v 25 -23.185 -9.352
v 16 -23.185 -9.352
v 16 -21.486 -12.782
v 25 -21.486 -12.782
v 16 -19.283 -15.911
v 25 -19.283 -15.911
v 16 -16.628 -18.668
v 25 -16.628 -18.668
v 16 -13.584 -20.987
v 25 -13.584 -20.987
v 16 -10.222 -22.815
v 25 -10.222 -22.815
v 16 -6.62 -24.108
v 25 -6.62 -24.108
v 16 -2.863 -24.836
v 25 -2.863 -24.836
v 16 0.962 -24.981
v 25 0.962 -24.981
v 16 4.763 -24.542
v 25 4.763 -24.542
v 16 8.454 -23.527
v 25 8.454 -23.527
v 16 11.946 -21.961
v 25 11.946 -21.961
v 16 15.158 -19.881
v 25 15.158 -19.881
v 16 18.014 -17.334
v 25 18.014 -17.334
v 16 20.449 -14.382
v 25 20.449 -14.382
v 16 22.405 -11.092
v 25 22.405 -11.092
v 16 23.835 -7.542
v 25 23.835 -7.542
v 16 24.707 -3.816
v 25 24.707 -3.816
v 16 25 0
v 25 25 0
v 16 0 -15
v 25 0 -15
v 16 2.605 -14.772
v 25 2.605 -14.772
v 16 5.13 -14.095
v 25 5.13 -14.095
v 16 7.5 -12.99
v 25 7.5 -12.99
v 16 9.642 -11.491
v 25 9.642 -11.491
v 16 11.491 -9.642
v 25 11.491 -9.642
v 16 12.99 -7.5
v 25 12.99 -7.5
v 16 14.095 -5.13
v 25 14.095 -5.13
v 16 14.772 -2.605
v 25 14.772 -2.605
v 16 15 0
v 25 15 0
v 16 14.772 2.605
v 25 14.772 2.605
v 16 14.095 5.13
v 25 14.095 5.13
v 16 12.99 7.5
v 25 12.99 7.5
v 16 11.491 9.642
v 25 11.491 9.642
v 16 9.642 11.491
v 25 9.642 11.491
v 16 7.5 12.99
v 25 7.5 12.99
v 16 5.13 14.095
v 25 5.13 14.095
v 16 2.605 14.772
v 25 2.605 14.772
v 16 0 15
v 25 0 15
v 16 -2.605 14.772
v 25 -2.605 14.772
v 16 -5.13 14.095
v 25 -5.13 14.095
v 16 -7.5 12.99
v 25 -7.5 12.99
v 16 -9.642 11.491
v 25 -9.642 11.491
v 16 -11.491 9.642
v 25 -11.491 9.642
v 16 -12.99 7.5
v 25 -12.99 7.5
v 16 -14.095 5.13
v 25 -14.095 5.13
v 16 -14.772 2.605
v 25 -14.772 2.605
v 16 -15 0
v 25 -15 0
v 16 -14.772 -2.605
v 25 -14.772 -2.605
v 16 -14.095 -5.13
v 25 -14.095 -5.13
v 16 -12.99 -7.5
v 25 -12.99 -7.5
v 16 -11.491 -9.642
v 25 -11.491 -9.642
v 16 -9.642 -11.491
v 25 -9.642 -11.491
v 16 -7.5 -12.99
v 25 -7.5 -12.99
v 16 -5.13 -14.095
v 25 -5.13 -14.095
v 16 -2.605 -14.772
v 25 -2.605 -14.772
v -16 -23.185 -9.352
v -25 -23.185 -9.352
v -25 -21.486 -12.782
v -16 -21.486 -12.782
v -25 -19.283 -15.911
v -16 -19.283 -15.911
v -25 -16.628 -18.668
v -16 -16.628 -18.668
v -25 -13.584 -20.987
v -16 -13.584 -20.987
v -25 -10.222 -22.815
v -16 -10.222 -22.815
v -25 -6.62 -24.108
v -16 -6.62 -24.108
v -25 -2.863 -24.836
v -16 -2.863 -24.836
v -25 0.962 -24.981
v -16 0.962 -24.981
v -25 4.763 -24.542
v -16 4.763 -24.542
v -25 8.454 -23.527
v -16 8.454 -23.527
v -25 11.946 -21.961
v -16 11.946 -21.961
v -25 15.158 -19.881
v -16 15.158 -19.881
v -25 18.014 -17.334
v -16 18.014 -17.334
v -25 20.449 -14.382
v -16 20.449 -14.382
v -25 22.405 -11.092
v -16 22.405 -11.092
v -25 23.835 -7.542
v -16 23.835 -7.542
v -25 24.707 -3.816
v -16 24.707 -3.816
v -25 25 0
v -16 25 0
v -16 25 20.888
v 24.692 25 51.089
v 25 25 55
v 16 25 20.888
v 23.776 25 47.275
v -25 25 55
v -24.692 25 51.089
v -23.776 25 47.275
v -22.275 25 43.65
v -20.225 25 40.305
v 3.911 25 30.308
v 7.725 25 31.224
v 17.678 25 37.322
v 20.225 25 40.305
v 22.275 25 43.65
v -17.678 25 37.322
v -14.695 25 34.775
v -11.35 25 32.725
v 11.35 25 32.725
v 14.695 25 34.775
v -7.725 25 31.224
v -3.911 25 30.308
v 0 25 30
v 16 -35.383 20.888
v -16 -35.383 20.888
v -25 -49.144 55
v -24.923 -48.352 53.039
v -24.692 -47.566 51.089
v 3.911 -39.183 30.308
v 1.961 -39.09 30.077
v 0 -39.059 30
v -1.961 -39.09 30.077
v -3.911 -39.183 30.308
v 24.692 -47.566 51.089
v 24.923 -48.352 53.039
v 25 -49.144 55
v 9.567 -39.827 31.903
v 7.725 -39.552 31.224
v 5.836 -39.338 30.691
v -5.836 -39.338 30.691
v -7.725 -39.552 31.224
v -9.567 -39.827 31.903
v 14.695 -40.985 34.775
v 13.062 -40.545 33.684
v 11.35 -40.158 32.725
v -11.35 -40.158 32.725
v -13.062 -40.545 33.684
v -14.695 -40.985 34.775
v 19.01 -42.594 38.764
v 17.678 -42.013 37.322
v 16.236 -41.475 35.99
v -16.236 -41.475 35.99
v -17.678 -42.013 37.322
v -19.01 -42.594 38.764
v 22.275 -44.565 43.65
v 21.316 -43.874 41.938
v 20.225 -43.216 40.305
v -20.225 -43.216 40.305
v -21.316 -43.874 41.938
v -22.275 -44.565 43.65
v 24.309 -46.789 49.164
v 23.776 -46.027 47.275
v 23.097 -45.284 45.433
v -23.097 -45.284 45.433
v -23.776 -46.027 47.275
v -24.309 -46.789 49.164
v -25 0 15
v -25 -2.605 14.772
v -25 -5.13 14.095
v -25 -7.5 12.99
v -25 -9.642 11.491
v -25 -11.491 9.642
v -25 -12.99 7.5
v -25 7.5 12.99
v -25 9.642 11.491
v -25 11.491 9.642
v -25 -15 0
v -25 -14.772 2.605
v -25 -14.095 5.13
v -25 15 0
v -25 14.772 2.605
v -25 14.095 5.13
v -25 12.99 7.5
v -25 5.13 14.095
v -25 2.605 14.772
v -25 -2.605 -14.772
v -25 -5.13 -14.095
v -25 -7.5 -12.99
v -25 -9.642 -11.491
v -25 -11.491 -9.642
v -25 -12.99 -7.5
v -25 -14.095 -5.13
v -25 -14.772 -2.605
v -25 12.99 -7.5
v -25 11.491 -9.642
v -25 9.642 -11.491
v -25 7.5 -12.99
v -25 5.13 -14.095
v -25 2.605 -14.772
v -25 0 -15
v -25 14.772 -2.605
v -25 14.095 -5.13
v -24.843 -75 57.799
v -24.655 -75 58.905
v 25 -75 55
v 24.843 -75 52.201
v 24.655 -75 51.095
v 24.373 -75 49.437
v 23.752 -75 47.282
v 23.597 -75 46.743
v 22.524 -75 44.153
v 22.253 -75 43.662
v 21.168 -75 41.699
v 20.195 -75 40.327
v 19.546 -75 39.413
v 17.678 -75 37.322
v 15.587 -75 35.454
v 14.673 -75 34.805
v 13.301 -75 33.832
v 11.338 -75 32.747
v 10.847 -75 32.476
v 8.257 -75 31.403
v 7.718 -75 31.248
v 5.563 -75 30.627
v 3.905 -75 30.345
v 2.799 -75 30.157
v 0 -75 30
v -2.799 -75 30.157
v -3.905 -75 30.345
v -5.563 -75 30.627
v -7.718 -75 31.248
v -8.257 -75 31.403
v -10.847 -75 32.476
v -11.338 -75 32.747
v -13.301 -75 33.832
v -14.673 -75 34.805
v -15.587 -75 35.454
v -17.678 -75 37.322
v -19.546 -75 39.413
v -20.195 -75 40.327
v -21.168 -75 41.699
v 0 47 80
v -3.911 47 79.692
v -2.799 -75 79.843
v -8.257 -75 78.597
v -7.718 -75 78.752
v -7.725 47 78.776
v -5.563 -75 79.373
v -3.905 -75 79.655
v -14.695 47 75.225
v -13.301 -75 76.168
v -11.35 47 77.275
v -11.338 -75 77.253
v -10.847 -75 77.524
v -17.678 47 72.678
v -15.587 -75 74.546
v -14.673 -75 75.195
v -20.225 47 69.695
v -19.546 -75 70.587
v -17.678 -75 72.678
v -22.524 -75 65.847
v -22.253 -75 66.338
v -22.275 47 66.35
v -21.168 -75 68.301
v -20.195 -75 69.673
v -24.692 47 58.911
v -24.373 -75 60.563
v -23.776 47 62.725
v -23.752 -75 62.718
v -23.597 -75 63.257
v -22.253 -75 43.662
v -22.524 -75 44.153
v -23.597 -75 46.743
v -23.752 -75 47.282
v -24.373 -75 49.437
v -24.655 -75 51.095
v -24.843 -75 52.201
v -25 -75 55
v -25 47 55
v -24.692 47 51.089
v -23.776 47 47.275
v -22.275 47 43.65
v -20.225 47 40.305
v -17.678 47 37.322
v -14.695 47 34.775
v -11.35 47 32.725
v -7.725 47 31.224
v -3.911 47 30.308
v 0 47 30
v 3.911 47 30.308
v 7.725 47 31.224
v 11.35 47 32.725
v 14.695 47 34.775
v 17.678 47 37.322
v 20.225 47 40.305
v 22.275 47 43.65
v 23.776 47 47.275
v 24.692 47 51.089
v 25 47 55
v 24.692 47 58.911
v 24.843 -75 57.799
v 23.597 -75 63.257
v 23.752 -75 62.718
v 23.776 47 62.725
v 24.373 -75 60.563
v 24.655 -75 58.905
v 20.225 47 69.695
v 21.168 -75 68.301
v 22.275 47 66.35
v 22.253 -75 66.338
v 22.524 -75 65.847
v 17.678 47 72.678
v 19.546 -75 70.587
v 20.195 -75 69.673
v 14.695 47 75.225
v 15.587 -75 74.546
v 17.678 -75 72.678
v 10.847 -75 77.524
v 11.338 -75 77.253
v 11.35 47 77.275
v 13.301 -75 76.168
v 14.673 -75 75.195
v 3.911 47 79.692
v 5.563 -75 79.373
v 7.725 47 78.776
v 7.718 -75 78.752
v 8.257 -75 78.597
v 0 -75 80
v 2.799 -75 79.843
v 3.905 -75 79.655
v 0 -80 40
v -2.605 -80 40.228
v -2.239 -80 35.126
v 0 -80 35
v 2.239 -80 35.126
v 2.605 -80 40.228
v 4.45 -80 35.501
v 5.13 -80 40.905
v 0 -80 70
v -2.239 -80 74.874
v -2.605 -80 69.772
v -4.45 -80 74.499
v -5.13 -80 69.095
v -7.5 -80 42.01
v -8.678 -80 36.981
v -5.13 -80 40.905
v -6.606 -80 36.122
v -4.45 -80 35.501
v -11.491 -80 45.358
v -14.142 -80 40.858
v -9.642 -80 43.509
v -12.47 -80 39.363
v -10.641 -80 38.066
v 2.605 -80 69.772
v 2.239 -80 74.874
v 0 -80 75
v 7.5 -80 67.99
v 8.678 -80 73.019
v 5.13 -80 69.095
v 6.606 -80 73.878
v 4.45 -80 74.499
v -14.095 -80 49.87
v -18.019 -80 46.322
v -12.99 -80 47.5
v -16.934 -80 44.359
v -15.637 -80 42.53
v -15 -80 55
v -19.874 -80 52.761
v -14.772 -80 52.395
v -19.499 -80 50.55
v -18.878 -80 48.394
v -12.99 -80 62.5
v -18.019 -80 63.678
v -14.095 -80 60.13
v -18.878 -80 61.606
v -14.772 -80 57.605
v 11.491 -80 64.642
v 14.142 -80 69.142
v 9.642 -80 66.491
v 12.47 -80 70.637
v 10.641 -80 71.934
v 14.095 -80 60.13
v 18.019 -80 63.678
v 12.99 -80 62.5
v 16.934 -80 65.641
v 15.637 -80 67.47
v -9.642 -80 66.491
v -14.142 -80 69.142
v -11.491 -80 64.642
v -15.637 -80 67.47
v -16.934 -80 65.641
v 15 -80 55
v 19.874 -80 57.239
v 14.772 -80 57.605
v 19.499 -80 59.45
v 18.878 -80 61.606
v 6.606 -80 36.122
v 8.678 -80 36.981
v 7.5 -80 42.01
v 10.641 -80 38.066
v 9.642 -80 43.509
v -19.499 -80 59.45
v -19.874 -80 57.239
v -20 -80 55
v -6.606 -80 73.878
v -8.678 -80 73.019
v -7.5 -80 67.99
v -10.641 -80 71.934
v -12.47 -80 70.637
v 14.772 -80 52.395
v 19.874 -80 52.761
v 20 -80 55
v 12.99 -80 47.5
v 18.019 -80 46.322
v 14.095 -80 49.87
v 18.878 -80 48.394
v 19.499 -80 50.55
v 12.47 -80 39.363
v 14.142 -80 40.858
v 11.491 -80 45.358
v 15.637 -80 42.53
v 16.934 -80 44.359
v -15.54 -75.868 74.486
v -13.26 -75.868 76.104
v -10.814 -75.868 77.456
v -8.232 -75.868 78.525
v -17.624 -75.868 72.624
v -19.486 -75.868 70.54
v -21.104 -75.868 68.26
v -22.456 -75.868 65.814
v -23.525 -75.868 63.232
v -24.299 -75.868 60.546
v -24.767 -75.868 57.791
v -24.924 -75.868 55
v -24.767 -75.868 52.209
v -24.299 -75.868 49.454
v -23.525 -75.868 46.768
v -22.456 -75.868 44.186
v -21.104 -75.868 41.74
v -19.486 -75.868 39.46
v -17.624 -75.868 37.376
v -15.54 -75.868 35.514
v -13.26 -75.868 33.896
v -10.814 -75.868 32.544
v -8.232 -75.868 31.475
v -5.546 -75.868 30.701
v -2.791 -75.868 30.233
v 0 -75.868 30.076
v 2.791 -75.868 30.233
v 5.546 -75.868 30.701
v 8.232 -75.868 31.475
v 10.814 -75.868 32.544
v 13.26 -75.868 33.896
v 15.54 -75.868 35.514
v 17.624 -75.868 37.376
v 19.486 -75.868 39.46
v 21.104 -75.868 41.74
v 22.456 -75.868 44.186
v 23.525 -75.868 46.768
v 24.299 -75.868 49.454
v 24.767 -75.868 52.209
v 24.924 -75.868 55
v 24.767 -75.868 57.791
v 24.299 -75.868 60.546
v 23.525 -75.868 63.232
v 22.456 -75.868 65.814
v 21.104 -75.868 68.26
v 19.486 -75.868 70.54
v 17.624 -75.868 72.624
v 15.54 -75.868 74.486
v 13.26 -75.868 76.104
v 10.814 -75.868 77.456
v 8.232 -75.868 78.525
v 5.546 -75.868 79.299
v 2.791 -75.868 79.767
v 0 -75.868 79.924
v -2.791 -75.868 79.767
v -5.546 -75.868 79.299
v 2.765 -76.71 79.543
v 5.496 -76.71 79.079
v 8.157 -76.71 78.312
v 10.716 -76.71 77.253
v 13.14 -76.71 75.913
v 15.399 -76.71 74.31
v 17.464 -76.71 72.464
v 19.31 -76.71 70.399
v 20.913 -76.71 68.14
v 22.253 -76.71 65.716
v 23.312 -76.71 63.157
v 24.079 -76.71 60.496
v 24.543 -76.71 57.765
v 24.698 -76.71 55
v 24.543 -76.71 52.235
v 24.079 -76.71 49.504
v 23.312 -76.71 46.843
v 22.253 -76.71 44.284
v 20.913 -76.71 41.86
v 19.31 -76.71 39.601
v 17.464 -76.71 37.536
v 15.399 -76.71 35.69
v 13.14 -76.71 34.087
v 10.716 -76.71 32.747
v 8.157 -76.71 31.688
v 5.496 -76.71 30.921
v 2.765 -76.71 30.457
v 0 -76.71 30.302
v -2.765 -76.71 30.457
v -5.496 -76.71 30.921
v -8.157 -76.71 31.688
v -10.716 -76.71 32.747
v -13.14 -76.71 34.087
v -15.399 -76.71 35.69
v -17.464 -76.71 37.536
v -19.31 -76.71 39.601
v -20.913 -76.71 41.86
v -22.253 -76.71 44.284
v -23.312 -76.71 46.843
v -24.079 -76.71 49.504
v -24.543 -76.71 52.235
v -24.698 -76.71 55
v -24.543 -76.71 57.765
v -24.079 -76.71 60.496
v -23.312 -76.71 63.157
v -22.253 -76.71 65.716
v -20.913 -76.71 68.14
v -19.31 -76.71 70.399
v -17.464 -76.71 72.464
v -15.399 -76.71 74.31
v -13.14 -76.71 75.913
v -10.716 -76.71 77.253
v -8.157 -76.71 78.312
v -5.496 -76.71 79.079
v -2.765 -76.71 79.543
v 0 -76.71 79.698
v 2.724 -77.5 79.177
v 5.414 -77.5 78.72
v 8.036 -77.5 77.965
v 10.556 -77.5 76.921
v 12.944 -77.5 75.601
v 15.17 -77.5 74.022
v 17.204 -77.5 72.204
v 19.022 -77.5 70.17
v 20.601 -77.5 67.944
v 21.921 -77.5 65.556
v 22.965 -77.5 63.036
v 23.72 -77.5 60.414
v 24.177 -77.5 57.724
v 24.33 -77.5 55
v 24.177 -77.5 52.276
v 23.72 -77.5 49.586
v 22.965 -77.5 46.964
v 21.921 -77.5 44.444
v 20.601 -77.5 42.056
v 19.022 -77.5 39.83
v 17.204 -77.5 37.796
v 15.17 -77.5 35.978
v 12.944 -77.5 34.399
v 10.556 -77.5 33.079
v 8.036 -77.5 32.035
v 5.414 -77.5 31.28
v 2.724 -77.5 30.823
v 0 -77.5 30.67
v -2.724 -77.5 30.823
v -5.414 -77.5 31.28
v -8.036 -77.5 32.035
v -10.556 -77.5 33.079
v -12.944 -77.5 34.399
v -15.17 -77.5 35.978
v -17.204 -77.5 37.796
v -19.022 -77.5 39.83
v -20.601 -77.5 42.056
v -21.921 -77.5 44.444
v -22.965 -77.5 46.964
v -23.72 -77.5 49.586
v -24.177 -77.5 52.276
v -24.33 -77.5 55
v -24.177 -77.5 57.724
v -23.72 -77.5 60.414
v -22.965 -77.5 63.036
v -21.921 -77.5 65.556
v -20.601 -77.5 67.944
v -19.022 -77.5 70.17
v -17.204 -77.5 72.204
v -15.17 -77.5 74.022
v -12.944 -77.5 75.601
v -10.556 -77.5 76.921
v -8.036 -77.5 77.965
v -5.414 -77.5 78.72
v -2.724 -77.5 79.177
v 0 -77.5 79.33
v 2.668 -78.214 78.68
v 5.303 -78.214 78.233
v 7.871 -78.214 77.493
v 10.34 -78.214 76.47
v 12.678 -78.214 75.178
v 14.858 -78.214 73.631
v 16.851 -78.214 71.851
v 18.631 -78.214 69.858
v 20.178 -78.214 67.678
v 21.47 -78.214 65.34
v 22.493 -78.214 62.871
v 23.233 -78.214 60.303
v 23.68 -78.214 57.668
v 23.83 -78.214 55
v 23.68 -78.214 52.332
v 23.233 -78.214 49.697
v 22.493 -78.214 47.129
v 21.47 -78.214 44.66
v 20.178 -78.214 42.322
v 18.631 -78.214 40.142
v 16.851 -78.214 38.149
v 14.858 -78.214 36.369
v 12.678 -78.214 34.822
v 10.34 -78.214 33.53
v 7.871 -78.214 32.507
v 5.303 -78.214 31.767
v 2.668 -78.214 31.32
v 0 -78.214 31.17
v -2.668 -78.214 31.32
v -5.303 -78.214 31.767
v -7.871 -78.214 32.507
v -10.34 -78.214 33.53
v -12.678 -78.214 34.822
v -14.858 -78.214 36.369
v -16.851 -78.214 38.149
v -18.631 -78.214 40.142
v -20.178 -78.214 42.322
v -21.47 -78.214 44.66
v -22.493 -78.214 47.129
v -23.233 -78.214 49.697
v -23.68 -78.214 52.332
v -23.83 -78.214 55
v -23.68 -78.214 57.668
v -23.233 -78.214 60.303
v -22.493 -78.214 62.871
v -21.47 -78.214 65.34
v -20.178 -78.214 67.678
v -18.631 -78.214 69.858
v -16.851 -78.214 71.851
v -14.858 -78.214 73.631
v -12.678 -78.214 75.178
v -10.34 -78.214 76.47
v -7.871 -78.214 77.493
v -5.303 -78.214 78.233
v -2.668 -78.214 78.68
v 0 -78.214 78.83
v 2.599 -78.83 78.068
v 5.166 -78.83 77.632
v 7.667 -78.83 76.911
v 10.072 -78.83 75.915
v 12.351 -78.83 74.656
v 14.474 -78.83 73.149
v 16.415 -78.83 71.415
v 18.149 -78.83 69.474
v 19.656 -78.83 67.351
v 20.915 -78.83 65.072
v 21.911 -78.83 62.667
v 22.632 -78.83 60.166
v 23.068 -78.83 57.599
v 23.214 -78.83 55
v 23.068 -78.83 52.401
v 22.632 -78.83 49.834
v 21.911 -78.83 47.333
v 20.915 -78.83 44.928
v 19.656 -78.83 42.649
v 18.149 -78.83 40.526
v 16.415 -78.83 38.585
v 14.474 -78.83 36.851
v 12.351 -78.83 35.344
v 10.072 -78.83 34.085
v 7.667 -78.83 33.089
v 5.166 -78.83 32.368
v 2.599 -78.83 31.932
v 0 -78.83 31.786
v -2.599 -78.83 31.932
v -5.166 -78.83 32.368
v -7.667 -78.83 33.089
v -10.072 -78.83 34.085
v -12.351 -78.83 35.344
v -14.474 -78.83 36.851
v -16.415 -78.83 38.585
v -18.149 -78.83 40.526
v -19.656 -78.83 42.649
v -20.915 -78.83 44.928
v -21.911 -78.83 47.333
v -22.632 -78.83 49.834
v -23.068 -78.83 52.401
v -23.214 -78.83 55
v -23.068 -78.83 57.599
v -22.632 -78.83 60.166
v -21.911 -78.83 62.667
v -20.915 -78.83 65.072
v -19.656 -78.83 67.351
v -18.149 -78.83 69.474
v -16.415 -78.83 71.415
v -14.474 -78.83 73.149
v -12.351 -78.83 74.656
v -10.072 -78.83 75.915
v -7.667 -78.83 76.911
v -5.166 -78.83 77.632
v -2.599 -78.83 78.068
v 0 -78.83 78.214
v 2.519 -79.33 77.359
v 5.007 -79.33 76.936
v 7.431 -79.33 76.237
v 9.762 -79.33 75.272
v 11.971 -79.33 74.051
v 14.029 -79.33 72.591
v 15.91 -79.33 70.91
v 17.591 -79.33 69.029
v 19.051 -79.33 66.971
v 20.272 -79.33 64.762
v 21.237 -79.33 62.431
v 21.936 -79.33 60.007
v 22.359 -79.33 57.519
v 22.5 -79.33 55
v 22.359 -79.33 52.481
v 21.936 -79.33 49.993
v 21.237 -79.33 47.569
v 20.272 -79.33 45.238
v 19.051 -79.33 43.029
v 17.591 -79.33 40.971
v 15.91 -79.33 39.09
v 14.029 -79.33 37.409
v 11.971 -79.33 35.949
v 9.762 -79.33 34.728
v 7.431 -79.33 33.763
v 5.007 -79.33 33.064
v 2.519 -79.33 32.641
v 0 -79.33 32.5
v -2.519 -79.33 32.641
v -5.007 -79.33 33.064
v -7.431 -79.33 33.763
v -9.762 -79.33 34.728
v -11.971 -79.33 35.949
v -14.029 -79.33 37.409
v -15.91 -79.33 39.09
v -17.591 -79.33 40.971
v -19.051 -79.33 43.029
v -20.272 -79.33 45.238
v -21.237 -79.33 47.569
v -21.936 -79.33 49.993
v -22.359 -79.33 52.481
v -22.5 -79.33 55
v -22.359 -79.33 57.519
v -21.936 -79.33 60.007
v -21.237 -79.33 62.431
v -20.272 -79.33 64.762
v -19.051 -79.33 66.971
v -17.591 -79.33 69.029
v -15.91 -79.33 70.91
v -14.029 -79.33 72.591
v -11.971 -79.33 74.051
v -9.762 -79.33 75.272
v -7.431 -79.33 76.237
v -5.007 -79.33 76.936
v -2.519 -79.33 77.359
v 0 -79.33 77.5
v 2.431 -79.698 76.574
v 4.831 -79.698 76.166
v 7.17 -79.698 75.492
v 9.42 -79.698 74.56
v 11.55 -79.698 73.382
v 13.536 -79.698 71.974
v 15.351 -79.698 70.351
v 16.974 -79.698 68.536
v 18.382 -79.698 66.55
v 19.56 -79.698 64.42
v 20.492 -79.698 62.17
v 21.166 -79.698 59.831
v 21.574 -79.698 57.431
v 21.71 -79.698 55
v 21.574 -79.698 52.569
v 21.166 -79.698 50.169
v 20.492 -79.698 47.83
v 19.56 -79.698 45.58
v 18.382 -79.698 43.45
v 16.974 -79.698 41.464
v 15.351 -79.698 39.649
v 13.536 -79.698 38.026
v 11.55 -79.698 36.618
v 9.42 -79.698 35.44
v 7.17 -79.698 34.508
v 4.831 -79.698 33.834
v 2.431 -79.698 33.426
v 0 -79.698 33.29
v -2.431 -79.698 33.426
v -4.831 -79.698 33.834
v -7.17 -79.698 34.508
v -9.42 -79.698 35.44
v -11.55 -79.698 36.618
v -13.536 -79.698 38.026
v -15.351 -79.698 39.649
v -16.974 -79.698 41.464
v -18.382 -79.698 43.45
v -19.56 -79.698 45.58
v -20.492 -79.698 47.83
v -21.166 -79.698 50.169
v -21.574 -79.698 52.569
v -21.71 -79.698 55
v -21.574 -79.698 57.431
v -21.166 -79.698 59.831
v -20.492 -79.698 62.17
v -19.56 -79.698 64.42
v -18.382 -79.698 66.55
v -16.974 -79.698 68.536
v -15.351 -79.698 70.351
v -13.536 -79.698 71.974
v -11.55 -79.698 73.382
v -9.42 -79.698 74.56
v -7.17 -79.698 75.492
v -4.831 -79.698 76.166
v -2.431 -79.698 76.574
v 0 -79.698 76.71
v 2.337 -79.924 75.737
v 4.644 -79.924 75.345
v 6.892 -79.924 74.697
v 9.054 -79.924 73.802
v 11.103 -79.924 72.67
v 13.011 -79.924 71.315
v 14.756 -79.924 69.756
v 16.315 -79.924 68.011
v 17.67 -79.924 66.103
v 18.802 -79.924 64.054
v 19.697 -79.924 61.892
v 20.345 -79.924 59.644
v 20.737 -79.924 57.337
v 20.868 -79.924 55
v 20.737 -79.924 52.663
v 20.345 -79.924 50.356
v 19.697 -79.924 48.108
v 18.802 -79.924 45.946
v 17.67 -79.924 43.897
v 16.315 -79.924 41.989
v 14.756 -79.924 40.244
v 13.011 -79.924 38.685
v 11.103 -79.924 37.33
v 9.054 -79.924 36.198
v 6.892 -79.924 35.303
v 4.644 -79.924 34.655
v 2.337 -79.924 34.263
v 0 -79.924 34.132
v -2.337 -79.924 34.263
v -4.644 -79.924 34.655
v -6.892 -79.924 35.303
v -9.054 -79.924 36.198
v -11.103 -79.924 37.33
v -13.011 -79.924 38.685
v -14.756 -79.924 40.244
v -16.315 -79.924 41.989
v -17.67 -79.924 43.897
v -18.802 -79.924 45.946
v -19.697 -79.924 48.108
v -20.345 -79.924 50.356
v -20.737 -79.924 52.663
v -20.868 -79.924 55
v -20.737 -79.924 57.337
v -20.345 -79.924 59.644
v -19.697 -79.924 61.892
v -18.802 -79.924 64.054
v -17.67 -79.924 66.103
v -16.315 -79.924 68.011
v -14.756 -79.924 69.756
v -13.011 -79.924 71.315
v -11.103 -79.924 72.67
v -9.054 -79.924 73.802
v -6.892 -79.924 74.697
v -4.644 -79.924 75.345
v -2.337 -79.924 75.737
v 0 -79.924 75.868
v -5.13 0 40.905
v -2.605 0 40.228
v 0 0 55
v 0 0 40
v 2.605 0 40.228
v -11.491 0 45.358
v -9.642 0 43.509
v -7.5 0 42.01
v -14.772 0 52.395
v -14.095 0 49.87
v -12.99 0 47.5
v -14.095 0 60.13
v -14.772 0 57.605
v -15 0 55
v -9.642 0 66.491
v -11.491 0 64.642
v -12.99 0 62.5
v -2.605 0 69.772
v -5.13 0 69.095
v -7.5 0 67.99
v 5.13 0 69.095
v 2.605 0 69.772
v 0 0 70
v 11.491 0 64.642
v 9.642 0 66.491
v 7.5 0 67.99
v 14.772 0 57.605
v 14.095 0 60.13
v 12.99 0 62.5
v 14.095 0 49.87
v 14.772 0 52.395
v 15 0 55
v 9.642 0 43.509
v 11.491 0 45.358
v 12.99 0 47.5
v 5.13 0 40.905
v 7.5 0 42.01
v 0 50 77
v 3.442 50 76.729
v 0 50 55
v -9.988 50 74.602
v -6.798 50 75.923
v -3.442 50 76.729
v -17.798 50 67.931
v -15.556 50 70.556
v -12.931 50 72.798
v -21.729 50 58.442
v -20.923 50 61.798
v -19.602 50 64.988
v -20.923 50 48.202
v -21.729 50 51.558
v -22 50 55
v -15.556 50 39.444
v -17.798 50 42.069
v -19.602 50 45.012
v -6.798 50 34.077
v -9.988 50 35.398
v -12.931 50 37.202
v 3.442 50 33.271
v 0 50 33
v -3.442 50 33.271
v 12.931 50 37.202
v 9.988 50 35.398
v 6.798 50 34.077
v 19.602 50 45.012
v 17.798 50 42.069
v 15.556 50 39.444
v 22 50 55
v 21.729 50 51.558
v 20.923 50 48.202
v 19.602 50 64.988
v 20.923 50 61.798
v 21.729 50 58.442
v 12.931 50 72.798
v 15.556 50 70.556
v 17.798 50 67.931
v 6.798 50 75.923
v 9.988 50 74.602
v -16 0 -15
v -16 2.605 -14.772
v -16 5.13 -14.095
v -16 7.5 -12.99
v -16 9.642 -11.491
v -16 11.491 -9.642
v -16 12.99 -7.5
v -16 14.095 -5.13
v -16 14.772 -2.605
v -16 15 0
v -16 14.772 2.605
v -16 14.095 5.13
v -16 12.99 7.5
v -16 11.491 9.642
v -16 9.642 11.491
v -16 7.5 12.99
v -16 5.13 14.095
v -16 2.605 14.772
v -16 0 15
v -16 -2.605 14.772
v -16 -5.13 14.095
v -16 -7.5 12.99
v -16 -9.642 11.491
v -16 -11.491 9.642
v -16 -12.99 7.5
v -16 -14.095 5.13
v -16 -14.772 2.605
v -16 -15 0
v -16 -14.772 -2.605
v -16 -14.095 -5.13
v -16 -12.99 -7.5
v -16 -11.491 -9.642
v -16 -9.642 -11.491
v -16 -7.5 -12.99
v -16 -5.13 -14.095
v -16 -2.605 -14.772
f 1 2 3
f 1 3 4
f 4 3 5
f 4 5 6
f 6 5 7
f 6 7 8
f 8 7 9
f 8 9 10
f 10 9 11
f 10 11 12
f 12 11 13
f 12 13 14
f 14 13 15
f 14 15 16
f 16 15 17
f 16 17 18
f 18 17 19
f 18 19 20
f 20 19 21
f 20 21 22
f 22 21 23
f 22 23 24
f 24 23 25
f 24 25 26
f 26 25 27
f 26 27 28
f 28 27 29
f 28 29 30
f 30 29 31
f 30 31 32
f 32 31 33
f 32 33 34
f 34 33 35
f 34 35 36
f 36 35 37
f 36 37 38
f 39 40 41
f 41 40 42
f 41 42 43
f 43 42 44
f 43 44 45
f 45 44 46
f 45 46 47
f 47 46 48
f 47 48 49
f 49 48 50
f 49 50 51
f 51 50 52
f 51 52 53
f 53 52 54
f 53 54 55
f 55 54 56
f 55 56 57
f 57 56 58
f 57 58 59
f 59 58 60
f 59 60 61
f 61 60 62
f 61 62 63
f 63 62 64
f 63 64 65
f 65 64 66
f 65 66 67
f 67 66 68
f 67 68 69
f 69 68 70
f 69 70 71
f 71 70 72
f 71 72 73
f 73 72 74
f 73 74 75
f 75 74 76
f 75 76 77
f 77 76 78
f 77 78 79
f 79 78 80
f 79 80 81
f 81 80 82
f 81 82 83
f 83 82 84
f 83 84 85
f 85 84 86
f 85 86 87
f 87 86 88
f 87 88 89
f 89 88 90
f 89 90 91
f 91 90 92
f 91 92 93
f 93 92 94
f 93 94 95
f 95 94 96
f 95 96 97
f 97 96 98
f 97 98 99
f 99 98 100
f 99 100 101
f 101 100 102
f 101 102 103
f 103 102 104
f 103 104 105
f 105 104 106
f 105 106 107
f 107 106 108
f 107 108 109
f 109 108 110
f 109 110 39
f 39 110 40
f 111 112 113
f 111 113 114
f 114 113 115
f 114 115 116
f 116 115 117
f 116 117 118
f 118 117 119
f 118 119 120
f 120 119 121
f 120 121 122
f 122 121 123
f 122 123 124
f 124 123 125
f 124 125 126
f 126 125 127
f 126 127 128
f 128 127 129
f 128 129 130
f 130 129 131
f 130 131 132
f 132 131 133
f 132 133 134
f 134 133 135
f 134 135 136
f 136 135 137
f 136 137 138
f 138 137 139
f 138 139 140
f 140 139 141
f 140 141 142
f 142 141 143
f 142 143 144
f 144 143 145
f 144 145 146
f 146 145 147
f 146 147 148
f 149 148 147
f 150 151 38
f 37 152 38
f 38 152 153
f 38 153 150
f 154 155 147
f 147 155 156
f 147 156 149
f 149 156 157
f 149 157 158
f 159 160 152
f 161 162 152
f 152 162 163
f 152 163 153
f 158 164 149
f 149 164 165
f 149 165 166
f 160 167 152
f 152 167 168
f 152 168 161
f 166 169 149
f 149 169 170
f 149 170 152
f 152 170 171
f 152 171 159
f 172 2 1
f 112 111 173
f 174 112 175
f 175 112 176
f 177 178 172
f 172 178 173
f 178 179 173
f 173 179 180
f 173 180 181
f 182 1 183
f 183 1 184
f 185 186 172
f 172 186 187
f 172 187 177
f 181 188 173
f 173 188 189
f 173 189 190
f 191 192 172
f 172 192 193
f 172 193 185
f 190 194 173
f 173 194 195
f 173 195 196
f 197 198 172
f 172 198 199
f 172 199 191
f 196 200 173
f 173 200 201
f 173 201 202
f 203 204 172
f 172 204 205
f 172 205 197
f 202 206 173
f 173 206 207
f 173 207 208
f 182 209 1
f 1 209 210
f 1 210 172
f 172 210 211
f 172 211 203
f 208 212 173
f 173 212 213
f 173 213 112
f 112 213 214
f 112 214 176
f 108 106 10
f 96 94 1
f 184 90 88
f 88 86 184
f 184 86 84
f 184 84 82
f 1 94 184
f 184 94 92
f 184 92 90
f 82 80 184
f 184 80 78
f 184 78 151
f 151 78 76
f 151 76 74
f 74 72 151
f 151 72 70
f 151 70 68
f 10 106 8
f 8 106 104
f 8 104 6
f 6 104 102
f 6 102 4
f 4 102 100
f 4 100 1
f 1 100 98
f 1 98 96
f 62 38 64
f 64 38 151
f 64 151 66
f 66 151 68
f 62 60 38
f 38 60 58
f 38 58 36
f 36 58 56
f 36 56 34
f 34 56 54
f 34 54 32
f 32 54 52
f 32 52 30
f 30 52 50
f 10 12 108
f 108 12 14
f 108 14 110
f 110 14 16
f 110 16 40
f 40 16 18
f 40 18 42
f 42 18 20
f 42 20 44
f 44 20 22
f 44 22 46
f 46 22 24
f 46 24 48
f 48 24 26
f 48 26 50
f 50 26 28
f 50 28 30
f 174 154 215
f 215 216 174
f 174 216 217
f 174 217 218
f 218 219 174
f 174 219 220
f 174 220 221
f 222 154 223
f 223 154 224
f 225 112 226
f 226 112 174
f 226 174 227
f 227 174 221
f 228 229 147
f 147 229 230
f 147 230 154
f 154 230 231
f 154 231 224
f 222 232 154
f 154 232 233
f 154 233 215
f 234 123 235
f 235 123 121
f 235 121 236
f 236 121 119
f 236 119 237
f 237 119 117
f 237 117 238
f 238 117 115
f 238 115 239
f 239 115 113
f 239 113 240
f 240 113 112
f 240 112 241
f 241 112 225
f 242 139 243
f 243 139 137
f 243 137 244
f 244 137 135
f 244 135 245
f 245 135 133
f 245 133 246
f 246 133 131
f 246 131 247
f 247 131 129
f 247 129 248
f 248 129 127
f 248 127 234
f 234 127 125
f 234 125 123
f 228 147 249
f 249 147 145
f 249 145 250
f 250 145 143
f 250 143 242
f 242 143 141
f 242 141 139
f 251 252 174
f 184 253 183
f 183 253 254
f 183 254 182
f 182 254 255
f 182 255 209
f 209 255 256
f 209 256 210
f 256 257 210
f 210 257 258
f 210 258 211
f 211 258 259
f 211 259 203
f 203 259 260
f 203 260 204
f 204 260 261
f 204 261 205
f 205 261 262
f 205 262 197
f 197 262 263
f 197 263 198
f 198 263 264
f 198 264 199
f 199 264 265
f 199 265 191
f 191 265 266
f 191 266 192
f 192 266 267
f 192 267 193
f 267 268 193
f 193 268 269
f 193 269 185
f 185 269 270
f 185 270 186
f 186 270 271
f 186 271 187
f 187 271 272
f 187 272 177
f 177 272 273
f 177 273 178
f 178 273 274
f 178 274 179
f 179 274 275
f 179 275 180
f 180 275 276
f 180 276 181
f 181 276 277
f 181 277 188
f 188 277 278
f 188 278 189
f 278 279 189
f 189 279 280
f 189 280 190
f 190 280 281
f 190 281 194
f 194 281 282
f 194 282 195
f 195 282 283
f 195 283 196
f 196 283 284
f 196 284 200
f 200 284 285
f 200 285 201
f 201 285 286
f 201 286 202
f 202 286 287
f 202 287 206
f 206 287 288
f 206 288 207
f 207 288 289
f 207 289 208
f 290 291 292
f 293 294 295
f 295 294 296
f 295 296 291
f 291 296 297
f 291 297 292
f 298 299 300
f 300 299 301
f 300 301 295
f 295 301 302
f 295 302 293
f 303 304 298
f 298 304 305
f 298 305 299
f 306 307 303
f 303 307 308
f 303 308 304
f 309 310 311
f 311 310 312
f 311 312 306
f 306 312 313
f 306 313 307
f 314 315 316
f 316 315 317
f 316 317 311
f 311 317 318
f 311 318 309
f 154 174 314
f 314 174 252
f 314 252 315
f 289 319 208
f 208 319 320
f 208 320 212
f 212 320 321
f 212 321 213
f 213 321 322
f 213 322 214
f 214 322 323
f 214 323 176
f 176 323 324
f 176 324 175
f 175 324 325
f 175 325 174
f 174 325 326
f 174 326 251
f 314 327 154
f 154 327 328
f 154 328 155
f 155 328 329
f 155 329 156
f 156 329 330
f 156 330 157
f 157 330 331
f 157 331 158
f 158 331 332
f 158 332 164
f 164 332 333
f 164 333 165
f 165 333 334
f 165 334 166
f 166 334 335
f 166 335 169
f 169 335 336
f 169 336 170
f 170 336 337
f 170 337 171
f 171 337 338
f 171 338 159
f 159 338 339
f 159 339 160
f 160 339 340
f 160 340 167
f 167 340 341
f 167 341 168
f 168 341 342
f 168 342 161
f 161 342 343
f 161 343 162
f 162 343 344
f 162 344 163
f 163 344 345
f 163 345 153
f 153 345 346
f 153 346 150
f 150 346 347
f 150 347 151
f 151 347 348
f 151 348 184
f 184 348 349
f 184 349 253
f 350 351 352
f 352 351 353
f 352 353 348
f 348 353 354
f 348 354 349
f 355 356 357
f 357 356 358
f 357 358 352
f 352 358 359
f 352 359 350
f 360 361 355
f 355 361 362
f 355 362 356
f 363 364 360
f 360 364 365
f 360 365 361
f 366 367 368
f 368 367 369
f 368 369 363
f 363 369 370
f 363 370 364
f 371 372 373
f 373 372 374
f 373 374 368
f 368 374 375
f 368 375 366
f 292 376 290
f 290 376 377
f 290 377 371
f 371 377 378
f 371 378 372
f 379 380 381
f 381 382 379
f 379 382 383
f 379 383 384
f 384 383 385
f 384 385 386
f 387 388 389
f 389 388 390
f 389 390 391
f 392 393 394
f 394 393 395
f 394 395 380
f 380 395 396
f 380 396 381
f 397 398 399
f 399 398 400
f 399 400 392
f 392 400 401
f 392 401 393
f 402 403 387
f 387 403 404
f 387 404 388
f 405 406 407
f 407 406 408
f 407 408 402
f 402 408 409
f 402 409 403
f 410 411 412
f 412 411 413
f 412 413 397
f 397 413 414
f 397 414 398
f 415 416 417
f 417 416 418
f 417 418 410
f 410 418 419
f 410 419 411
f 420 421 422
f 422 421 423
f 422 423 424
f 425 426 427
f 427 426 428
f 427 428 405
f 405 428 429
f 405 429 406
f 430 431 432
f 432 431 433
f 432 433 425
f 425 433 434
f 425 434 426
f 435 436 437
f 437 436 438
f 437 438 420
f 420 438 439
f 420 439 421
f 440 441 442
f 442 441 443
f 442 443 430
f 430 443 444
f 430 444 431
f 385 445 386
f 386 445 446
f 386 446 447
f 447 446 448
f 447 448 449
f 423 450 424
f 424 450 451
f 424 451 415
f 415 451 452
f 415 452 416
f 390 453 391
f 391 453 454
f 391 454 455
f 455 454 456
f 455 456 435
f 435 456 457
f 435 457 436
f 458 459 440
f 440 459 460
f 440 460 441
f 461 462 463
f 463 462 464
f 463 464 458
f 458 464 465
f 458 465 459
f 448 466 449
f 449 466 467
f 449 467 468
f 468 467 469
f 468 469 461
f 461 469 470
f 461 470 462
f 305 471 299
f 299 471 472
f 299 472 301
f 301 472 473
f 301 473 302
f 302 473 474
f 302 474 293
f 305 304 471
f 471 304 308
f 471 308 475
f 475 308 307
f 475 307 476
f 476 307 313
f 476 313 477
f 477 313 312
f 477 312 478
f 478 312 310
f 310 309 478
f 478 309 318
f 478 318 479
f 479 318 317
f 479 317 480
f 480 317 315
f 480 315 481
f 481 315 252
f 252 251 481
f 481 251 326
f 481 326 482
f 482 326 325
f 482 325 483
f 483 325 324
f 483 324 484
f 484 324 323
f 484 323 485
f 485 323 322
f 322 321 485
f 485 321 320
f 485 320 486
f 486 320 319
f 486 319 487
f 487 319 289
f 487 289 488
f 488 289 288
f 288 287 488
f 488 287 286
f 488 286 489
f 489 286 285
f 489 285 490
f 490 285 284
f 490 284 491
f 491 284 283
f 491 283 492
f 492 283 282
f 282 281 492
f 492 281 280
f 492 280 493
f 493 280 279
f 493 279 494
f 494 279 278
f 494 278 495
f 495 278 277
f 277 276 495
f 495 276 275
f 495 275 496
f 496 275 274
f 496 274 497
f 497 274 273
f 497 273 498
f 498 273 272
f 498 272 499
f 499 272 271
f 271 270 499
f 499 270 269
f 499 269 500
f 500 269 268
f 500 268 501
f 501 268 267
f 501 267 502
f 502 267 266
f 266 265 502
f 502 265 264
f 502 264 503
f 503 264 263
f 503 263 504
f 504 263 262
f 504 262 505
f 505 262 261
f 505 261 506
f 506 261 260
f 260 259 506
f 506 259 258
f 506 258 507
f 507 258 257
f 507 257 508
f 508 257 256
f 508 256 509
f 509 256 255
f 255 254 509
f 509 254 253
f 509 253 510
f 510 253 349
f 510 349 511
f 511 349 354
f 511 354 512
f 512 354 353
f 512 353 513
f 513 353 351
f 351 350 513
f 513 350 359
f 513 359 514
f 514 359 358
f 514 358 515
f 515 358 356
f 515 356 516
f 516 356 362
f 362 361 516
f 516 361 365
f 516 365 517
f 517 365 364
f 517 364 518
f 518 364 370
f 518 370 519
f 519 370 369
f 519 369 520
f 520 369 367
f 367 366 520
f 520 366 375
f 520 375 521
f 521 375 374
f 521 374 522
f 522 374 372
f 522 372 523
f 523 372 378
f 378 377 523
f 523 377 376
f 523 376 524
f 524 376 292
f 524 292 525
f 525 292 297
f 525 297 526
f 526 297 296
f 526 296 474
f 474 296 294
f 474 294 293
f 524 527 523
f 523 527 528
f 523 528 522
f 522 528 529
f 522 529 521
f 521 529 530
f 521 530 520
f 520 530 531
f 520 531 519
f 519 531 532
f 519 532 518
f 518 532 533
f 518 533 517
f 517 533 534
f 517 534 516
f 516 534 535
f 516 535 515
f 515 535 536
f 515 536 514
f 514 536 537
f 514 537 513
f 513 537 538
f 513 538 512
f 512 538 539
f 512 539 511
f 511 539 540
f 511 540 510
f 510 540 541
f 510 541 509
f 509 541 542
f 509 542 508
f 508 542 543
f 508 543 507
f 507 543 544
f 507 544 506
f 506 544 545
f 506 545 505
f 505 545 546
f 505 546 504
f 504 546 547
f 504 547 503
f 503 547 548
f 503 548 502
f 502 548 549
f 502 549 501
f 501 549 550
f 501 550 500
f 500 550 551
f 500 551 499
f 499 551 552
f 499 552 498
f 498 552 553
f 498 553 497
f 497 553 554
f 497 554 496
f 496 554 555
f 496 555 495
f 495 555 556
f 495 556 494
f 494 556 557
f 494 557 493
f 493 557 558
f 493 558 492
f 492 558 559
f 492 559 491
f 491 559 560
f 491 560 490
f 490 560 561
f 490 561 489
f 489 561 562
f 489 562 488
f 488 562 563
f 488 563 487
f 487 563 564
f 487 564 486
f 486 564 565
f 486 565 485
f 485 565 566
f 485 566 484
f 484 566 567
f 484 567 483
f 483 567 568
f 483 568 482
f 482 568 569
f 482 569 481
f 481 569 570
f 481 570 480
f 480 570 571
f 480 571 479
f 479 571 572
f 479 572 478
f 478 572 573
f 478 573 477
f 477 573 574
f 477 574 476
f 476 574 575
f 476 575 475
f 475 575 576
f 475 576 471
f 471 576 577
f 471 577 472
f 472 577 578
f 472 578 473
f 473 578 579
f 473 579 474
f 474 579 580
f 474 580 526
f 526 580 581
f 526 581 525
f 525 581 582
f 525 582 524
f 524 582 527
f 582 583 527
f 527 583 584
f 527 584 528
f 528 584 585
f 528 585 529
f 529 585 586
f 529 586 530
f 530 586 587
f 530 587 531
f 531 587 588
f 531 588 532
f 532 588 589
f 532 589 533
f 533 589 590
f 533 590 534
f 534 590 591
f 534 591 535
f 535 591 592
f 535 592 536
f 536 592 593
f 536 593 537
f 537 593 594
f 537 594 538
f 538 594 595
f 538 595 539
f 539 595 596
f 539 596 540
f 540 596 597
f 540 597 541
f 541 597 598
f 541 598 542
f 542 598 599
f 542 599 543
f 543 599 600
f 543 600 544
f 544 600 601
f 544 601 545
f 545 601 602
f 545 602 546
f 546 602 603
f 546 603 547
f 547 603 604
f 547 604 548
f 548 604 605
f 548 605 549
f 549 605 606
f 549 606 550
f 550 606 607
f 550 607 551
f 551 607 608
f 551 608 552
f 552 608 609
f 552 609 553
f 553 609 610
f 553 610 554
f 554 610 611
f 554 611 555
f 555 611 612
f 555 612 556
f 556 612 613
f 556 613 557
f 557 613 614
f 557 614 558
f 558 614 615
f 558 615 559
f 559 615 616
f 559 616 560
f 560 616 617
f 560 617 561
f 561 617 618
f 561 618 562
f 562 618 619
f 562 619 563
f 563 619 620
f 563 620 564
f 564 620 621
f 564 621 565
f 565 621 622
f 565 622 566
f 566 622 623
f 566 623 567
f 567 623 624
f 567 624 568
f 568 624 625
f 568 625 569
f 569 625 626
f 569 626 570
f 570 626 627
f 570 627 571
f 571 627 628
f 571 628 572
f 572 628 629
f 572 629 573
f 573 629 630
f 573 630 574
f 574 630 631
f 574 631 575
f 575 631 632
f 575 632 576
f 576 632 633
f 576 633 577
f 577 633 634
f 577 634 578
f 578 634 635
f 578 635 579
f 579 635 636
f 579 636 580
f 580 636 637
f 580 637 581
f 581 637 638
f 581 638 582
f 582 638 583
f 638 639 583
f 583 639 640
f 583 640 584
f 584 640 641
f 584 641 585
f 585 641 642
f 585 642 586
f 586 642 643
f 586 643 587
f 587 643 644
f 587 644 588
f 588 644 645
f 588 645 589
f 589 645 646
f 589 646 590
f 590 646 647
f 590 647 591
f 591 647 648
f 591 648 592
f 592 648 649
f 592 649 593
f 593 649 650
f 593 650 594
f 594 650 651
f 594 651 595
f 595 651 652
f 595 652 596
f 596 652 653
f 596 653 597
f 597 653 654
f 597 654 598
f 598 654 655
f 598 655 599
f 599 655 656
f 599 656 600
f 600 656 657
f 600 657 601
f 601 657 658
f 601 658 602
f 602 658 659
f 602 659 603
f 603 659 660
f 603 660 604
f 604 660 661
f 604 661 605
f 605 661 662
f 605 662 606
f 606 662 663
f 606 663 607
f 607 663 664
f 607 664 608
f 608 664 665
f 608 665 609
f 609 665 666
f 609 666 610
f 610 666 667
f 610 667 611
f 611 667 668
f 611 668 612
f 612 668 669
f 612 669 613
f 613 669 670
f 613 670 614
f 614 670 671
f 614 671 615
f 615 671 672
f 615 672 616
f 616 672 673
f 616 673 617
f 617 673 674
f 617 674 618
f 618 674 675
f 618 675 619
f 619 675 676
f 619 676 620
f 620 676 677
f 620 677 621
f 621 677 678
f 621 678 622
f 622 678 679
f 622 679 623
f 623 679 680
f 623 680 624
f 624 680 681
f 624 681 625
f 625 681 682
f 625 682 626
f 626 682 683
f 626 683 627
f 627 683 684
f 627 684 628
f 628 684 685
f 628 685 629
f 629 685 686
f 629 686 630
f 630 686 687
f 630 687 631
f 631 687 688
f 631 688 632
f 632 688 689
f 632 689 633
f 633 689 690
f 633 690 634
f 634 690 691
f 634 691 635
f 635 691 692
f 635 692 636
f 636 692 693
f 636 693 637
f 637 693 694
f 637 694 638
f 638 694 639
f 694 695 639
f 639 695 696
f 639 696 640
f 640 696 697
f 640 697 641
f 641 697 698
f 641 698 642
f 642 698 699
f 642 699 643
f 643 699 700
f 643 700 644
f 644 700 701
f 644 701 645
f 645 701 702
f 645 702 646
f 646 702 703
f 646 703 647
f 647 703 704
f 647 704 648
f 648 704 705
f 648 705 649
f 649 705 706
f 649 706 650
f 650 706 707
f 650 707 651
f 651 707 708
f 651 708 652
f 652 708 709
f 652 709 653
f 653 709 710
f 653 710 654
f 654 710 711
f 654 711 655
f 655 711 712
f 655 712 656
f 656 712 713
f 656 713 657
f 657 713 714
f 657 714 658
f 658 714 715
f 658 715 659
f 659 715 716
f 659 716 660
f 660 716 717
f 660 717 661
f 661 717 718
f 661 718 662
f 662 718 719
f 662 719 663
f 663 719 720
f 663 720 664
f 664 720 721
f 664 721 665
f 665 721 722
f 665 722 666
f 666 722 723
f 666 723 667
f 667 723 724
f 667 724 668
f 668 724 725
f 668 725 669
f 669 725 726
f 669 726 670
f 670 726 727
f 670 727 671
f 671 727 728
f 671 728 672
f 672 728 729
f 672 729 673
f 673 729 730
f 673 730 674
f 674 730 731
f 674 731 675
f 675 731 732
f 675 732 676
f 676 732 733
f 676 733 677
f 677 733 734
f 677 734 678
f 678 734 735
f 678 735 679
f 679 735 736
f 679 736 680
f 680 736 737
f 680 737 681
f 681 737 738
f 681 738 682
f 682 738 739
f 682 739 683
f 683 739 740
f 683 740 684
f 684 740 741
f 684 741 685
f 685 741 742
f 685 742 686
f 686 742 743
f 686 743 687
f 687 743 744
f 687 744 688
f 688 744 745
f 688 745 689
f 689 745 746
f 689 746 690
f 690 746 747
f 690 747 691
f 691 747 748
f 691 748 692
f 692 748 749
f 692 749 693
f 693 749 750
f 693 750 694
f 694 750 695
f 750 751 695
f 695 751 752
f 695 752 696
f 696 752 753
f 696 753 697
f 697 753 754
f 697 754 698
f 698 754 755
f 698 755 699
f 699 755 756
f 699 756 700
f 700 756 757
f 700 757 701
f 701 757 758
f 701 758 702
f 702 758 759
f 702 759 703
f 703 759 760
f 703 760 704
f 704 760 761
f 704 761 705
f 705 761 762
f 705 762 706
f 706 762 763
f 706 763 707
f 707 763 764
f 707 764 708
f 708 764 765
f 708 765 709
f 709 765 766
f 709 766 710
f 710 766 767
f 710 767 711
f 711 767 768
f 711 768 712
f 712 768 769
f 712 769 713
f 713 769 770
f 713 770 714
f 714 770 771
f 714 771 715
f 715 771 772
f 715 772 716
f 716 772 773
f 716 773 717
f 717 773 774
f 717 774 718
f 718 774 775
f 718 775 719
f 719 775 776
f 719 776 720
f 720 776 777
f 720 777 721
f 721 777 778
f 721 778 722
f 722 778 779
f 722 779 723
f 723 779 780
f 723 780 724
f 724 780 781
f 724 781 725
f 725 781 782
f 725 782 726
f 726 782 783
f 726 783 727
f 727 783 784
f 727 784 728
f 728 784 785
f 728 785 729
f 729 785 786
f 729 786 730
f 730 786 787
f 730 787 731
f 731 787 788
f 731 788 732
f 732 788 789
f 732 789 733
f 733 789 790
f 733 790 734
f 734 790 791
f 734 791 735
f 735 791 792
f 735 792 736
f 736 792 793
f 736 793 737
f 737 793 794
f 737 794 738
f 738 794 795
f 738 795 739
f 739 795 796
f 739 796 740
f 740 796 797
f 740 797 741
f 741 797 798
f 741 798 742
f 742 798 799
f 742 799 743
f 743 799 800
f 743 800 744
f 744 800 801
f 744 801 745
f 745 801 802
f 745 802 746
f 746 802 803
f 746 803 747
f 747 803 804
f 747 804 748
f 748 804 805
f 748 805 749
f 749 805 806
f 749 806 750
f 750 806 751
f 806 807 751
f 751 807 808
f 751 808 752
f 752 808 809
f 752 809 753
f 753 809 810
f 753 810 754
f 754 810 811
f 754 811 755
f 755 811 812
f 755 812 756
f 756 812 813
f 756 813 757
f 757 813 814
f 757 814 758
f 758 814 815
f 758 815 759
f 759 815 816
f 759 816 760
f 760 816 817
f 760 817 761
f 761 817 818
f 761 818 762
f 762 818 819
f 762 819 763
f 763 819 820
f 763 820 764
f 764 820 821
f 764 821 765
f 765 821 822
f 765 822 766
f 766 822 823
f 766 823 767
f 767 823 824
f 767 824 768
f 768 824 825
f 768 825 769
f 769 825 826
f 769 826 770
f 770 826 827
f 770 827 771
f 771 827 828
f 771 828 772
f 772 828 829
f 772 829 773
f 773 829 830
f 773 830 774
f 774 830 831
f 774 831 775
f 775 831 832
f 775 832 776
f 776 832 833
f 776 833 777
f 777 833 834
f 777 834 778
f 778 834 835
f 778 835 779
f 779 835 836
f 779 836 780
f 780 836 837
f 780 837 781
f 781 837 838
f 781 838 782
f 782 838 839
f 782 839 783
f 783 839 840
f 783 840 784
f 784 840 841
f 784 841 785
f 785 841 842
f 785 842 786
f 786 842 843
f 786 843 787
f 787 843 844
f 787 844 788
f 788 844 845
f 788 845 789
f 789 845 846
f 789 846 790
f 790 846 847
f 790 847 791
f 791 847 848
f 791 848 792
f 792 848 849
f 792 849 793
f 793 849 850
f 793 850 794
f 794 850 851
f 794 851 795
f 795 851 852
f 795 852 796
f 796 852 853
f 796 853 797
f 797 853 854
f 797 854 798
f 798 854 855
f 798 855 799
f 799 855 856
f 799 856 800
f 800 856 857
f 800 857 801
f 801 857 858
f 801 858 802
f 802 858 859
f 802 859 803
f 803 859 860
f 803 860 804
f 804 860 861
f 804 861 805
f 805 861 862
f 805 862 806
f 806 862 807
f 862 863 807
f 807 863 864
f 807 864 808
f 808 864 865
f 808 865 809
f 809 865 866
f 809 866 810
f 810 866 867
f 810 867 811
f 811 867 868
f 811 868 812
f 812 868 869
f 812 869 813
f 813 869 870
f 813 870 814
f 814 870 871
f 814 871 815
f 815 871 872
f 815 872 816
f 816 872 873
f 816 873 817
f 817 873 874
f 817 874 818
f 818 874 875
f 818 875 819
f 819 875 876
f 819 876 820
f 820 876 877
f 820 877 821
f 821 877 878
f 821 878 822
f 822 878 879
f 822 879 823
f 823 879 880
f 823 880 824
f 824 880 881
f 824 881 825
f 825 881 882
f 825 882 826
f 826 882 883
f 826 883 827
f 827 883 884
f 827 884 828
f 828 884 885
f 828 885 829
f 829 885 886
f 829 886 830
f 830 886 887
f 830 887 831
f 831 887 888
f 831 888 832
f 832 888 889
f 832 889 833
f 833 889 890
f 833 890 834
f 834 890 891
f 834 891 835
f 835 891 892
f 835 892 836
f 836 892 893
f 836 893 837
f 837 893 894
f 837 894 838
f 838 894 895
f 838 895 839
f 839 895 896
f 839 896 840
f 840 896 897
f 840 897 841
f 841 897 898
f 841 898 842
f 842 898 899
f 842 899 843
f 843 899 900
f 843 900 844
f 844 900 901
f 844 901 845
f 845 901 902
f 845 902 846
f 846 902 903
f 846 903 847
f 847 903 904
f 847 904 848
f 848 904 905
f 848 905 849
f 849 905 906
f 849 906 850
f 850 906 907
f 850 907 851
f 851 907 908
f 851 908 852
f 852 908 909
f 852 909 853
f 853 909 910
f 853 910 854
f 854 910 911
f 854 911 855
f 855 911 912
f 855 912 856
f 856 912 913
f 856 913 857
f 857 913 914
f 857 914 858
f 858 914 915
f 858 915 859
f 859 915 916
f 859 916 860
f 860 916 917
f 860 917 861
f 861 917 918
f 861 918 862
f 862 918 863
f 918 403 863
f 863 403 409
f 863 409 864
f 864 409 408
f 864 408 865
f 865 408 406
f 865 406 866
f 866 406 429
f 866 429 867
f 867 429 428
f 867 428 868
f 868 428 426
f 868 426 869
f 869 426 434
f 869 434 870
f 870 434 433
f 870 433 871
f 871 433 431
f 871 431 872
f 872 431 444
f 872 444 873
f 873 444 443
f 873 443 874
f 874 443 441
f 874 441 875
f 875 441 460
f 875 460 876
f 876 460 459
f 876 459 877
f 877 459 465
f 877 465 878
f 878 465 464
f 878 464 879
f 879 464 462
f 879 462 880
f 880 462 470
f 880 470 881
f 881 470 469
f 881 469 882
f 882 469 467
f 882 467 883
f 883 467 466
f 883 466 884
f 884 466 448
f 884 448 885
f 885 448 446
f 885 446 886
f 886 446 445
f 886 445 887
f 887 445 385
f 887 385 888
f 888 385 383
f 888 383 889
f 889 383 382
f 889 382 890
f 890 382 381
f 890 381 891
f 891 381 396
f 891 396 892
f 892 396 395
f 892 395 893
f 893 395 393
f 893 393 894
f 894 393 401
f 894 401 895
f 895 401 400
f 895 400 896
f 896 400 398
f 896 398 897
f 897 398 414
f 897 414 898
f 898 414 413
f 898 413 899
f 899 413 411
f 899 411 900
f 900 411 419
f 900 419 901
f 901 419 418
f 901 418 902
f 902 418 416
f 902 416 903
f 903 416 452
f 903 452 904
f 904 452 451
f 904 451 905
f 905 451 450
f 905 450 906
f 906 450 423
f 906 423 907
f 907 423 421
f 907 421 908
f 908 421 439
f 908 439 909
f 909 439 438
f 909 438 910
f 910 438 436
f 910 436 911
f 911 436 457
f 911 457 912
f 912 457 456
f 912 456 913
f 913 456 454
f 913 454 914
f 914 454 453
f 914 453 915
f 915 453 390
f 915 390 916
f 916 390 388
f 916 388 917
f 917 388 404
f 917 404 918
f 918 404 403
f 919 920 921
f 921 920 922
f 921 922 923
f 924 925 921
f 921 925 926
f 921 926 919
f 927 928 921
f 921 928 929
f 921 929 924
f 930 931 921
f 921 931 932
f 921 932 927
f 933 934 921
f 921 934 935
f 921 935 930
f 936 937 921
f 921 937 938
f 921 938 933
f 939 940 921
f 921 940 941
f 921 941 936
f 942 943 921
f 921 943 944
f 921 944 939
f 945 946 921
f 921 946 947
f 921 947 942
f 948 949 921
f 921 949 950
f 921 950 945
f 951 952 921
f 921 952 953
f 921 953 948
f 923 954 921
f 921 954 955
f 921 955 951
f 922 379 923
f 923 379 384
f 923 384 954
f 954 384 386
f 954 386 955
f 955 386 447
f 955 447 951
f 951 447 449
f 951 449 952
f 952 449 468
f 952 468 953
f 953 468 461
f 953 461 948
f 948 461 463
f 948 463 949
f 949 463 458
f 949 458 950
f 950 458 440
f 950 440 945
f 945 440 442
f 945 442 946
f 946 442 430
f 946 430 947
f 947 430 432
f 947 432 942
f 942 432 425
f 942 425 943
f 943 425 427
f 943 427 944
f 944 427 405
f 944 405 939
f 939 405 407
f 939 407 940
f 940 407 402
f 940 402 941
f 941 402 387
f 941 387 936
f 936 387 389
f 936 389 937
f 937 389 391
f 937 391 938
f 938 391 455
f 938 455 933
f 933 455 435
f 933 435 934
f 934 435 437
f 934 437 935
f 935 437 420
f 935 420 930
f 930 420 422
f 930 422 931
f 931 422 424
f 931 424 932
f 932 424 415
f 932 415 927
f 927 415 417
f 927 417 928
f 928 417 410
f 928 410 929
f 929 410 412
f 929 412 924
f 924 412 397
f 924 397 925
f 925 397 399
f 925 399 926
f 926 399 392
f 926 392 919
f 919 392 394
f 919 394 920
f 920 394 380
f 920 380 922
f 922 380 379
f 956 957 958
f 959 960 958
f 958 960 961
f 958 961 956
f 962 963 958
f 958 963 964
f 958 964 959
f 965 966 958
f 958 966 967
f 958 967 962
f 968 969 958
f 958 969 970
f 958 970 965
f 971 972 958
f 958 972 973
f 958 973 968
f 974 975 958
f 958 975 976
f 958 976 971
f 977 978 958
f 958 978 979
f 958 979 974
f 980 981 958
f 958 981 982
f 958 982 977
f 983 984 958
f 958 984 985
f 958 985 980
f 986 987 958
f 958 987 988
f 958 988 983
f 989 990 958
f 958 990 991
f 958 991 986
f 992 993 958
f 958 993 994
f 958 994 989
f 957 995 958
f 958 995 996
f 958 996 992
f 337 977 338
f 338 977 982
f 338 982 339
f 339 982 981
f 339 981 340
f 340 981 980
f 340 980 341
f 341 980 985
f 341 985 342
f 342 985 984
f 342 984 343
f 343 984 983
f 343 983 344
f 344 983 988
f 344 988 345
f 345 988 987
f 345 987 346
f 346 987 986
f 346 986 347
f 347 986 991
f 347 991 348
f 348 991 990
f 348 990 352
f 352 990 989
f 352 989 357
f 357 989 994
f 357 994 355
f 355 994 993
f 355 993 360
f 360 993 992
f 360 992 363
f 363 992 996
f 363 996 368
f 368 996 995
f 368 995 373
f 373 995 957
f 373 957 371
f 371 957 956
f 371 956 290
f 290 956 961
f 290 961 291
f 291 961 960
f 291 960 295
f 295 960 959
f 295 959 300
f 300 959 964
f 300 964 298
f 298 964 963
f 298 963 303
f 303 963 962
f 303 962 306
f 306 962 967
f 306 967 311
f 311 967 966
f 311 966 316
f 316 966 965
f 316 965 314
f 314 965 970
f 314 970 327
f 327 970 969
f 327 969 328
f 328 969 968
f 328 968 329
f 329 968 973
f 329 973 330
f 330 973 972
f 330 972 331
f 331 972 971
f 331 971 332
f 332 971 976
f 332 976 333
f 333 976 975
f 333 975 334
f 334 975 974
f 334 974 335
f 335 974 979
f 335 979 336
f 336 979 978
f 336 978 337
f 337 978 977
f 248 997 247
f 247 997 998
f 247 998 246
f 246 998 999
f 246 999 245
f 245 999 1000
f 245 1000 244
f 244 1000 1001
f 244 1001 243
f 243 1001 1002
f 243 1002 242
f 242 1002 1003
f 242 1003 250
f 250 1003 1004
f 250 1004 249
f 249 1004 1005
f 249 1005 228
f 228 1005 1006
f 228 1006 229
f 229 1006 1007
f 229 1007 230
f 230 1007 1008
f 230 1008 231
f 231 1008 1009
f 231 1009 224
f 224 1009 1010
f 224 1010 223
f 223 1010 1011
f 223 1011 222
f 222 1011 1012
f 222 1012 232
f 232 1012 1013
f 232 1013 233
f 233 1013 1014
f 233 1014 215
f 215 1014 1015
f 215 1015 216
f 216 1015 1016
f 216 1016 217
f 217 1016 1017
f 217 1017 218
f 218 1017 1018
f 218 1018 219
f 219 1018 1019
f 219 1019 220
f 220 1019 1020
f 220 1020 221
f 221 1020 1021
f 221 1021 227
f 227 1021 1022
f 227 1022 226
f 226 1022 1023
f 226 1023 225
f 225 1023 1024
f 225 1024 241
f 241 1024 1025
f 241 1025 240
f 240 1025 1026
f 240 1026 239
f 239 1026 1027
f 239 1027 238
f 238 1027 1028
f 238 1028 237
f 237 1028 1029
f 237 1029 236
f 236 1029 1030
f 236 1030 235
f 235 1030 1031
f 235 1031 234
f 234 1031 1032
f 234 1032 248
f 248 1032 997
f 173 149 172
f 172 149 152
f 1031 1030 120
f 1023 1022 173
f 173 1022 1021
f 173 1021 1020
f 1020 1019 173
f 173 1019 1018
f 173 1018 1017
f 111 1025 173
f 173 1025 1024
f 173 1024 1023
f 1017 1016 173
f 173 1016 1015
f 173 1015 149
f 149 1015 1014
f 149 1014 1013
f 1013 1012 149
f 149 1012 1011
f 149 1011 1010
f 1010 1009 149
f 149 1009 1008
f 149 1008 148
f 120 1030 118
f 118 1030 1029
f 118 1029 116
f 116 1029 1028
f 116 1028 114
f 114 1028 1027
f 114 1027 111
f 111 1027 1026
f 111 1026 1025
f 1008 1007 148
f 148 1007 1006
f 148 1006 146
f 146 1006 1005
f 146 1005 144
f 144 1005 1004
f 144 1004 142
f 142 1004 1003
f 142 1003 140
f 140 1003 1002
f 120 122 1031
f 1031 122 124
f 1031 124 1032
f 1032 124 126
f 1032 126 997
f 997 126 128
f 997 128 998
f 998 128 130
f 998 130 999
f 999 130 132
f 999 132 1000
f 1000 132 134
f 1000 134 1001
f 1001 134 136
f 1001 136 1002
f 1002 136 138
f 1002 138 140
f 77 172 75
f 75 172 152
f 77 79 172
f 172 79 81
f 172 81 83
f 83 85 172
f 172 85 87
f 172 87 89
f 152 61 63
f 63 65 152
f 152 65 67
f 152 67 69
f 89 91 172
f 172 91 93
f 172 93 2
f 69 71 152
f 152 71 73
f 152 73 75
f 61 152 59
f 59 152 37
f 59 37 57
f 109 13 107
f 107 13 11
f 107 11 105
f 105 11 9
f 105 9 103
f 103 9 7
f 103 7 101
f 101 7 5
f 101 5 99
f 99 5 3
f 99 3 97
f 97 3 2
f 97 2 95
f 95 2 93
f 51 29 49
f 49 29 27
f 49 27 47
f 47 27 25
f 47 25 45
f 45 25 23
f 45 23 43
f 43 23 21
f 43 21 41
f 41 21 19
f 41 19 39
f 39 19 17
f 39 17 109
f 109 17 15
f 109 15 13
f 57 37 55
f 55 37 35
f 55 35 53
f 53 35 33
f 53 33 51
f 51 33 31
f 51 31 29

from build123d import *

# Parameters (mm, degrees)
EXTRUDE_8_DEPTH     = 25
EXTRUDE_START       = -25
SKETCH_12_R         = 25
EXTRUDE_9_DEPTH     = 80
FILLET_1_R          = 5
SKETCH_13_R         = 15
CUT_EXTRUDE_1_DEPTH = 80
SKETCH_14_R         = 25
EXTRUDE_10_DEPTH    = 25
CHAMFER_1_SIZE      = 3
SKETCH_15_R         = 15
CUT_EXTRUDE_2_DEPTH = 55
SKETCH_16_W         = 51.322430614
SKETCH_16_H         = 72.336093734
CUT_EXTRUDE_3_DEPTH = 16


with BuildPart() as part:
    # 草图10 → 凸台-拉伸8 (new, symmetric)
    with BuildSketch(Plane(origin=(0, 0, 0), x_dir=(0, 0, -1), z_dir=(1, 0, 0))):
        with BuildLine():
            Line((0, 25), (-55, 25))
            Line((-55, 25), (-55, -49.143520922))
            Line((-55, -49.143520922), (9.352376308, -23.184759162))
            ThreePointArc((9.352376308, -23.184759162), (24.541994408, 4.763455728), (0, 25))
        make_face()
    extrude(amount=EXTRUDE_8_DEPTH, both=True)

    # 草图12 → 凸台-拉伸9 (add)
    with BuildSketch(Plane(origin=(0, 25, 0), x_dir=(1, 0, 0), z_dir=(0, 1, 0)).offset(EXTRUDE_START)):
        with Locations(Location((0, -55, 0), (0, 0, 270))):
            Circle(SKETCH_12_R)
    extrude(amount=-EXTRUDE_9_DEPTH)

    # 圆角1
    fillet_1_edges = [part.edges().sort_by_distance(p)[0] for p in [
        (0, -80, 30),
    ]]
    fillet(fillet_1_edges, radius=FILLET_1_R)

    # 草图13 → 切除-拉伸1 (cut)
    with BuildSketch(Plane.XZ.offset(80)):
        with Locations(Location((0, 55, 0), (0, 0, 270))):
            Circle(SKETCH_13_R)
    extrude(amount=-CUT_EXTRUDE_1_DEPTH, mode=Mode.SUBTRACT)

    # 草图14 → 凸台-拉伸10 (add, symmetric)
    with BuildSketch(Plane(origin=(0, 25, 0), x_dir=(1, 0, 0), z_dir=(0, 1, 0))):
        with Locations(Location((0, -55, 0), (0, 0, 270))):
            Circle(SKETCH_14_R)
    extrude(amount=EXTRUDE_10_DEPTH, both=True)

    # 倒角1
    chamfer_1_edges = [part.edges().sort_by_distance(p)[0] for p in [
        (0, 50, 30),
    ]]
    chamfer(chamfer_1_edges, length=CHAMFER_1_SIZE)

    # 草图15 → 切除-拉伸2 (cut)
    with BuildSketch(Plane(origin=(25, 0, 0), x_dir=(0, 0, -1), z_dir=(1, 0, 0))):
        Circle(SKETCH_15_R)
    extrude(amount=-CUT_EXTRUDE_2_DEPTH, mode=Mode.SUBTRACT)

    # 草图16 → 切除-拉伸3 (cut, symmetric)
    with BuildSketch(Plane(origin=(0, 0, 0), x_dir=(0, 0, -1), z_dir=(1, 0, 0))):
        with Locations((4.773637783, -2.635053382)):
            Rectangle(SKETCH_16_W, SKETCH_16_H)
    extrude(amount=CUT_EXTRUDE_3_DEPTH, both=True, mode=Mode.SUBTRACT)


solid = part.part
